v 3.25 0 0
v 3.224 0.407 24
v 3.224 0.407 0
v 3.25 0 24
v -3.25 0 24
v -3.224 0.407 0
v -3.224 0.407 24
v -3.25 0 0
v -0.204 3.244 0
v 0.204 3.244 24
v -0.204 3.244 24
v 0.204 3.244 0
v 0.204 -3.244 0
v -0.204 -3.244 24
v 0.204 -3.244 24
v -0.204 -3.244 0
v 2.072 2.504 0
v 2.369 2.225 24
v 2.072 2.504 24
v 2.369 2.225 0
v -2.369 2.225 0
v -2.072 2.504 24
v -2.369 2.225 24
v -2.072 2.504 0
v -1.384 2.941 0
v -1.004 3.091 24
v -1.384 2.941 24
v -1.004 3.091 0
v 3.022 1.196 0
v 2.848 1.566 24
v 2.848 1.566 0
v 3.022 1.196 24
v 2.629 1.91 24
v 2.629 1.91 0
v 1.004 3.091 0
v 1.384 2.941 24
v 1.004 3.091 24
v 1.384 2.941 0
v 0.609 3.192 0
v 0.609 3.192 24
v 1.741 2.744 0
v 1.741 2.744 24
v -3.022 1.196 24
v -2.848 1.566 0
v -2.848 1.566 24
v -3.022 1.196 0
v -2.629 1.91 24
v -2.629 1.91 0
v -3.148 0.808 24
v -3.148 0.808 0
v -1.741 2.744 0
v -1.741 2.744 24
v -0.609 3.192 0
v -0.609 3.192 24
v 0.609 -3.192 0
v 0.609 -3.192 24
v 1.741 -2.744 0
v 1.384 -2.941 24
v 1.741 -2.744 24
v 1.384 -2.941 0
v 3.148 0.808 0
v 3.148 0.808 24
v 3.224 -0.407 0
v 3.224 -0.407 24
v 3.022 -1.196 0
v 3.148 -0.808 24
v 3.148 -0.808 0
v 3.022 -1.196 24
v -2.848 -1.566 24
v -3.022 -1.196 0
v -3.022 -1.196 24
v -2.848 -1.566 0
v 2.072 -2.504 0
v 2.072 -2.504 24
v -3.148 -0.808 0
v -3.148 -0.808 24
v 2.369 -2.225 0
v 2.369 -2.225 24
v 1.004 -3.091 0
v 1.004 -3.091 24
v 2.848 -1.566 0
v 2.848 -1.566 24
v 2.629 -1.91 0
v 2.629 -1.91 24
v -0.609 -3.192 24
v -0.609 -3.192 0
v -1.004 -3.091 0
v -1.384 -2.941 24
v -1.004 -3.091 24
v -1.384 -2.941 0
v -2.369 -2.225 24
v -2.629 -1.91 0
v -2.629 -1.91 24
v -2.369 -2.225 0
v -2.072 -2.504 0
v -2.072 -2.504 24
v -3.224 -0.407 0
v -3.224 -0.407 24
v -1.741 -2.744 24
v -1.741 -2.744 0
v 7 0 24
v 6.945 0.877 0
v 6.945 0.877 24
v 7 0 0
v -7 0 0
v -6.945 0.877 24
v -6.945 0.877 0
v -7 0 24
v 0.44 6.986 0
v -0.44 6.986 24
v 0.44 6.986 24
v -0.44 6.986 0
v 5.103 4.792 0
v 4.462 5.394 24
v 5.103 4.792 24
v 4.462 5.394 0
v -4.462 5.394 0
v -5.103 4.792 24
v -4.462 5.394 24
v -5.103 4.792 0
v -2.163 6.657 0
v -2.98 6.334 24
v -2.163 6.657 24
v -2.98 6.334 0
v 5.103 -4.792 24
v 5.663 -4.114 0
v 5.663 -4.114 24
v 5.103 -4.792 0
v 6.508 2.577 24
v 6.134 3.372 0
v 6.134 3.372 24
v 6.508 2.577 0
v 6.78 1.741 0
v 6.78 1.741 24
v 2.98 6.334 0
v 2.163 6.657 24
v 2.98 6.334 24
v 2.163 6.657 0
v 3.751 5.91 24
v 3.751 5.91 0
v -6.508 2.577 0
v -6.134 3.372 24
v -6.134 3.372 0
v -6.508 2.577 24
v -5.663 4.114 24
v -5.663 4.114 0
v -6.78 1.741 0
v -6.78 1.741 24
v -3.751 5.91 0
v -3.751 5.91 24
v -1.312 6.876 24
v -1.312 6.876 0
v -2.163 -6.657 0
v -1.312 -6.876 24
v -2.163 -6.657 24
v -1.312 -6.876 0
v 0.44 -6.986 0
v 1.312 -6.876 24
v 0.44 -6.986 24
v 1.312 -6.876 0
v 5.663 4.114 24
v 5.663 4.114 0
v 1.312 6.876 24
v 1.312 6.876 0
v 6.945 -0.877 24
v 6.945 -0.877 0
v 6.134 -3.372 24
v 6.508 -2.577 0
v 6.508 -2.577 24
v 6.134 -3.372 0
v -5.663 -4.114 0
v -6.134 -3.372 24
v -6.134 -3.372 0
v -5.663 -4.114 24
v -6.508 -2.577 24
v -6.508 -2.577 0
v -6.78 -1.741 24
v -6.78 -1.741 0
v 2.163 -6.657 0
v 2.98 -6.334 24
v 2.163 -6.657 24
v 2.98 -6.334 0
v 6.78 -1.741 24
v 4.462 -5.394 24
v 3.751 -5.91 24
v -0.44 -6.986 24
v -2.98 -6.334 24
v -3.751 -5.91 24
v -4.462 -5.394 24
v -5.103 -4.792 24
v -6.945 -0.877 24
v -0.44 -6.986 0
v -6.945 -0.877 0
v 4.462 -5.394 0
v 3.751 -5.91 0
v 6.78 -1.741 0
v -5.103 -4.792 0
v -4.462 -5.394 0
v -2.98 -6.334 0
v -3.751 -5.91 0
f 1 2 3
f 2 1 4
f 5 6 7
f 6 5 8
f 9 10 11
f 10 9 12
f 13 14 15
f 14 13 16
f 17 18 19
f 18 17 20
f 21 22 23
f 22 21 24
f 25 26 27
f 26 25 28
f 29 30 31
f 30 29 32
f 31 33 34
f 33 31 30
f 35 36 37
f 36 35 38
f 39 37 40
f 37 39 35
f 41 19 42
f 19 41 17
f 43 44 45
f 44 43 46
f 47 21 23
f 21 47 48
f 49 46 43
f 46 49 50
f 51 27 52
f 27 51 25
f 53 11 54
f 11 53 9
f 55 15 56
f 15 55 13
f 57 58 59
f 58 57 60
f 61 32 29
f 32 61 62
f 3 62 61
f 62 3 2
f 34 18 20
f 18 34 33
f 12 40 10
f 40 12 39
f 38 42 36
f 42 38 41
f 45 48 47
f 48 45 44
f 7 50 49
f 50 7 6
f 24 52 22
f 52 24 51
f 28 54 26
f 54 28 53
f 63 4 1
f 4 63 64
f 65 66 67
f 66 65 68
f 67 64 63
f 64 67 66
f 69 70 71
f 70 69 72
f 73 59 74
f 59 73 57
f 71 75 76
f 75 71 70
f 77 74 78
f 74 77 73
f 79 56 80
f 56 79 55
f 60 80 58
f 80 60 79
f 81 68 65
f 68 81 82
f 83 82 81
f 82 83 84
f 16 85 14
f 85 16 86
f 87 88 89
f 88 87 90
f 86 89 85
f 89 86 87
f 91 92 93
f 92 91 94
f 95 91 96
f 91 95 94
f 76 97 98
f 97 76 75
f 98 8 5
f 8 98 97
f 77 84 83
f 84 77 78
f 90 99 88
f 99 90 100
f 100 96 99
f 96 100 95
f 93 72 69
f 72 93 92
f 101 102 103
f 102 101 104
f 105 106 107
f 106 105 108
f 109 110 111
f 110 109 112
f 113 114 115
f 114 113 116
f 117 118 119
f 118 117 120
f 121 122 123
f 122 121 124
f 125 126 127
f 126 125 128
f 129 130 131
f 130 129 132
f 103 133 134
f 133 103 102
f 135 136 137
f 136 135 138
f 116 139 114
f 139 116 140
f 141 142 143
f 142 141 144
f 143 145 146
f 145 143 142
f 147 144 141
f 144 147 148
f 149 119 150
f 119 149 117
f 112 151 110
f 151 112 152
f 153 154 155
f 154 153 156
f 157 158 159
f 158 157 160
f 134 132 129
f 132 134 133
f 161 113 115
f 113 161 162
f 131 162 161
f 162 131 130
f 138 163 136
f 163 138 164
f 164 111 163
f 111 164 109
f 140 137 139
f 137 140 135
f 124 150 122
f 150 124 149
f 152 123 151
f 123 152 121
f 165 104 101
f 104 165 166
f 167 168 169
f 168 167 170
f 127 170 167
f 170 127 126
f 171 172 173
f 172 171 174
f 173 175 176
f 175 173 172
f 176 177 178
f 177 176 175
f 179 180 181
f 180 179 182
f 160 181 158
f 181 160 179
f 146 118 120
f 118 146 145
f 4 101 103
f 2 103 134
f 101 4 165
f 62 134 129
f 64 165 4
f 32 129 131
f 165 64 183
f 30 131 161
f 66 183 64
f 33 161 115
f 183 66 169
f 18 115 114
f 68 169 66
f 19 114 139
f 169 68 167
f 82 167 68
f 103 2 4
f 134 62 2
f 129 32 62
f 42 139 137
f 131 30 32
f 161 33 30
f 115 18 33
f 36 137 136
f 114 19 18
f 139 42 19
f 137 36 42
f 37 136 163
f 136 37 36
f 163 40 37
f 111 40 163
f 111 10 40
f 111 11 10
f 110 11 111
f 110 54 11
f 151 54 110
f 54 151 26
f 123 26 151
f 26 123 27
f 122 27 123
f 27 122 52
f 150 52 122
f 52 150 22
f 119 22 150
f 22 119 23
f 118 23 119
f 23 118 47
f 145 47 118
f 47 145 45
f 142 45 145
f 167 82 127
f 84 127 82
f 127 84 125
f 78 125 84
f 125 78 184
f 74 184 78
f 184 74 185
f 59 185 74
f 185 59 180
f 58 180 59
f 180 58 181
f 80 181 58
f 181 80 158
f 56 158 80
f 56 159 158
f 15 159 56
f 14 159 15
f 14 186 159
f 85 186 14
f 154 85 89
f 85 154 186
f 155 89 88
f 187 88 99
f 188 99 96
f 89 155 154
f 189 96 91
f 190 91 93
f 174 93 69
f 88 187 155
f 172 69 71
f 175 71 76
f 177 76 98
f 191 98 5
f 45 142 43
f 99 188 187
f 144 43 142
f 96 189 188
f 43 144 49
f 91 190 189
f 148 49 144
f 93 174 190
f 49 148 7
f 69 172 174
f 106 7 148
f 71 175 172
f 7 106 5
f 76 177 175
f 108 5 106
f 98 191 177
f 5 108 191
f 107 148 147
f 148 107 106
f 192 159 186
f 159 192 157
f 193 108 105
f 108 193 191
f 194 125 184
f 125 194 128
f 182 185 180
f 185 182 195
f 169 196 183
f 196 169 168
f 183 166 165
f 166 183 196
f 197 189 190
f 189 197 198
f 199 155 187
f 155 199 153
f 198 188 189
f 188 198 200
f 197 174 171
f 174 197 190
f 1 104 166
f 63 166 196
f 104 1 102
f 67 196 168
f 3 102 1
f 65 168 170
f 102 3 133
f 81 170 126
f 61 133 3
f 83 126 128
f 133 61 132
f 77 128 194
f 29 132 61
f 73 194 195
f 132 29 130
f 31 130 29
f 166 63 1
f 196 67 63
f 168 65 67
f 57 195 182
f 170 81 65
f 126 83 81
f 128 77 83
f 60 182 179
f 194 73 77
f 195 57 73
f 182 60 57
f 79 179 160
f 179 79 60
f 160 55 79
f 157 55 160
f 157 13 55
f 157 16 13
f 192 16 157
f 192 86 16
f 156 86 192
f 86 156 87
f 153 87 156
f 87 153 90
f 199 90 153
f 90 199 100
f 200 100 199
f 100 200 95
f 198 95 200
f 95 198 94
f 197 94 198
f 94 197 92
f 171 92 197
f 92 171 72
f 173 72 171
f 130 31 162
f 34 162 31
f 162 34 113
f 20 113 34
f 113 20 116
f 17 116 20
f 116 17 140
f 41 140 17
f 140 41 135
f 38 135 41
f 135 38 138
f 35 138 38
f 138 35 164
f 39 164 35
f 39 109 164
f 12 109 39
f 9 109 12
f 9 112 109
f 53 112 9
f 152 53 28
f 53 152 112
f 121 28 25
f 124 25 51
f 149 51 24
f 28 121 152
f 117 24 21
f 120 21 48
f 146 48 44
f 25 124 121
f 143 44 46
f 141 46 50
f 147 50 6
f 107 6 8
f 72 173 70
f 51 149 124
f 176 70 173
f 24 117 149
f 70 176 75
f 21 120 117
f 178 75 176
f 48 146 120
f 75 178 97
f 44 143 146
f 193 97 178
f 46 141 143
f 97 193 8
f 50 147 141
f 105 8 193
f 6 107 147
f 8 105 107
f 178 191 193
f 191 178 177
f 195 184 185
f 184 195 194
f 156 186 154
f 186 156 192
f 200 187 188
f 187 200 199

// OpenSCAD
$fn = 50;


difference() {
	union() {
		cylinder(h = 24, r = 7.0000000000);
	}
	union() {
		translate(v = [0.0000000000, 0.0000000000, -100.0000000000]) {
			cylinder(h = 200, r = 3.2500000000);
		}
		translate(v = [0.0000000000, 0.0000000000, -100.0000000000]) {
			cylinder(h = 200, r = 3.2500000000);
		}
		translate(v = [0.0000000000, 0.0000000000, -100.0000000000]) {
			cylinder(h = 200, r = 3.2500000000);
		}
		translate(v = [0.0000000000, 0.0000000000, -100.0000000000]) {
			cylinder(h = 200, r = 3.2500000000);
		}
	}
}
